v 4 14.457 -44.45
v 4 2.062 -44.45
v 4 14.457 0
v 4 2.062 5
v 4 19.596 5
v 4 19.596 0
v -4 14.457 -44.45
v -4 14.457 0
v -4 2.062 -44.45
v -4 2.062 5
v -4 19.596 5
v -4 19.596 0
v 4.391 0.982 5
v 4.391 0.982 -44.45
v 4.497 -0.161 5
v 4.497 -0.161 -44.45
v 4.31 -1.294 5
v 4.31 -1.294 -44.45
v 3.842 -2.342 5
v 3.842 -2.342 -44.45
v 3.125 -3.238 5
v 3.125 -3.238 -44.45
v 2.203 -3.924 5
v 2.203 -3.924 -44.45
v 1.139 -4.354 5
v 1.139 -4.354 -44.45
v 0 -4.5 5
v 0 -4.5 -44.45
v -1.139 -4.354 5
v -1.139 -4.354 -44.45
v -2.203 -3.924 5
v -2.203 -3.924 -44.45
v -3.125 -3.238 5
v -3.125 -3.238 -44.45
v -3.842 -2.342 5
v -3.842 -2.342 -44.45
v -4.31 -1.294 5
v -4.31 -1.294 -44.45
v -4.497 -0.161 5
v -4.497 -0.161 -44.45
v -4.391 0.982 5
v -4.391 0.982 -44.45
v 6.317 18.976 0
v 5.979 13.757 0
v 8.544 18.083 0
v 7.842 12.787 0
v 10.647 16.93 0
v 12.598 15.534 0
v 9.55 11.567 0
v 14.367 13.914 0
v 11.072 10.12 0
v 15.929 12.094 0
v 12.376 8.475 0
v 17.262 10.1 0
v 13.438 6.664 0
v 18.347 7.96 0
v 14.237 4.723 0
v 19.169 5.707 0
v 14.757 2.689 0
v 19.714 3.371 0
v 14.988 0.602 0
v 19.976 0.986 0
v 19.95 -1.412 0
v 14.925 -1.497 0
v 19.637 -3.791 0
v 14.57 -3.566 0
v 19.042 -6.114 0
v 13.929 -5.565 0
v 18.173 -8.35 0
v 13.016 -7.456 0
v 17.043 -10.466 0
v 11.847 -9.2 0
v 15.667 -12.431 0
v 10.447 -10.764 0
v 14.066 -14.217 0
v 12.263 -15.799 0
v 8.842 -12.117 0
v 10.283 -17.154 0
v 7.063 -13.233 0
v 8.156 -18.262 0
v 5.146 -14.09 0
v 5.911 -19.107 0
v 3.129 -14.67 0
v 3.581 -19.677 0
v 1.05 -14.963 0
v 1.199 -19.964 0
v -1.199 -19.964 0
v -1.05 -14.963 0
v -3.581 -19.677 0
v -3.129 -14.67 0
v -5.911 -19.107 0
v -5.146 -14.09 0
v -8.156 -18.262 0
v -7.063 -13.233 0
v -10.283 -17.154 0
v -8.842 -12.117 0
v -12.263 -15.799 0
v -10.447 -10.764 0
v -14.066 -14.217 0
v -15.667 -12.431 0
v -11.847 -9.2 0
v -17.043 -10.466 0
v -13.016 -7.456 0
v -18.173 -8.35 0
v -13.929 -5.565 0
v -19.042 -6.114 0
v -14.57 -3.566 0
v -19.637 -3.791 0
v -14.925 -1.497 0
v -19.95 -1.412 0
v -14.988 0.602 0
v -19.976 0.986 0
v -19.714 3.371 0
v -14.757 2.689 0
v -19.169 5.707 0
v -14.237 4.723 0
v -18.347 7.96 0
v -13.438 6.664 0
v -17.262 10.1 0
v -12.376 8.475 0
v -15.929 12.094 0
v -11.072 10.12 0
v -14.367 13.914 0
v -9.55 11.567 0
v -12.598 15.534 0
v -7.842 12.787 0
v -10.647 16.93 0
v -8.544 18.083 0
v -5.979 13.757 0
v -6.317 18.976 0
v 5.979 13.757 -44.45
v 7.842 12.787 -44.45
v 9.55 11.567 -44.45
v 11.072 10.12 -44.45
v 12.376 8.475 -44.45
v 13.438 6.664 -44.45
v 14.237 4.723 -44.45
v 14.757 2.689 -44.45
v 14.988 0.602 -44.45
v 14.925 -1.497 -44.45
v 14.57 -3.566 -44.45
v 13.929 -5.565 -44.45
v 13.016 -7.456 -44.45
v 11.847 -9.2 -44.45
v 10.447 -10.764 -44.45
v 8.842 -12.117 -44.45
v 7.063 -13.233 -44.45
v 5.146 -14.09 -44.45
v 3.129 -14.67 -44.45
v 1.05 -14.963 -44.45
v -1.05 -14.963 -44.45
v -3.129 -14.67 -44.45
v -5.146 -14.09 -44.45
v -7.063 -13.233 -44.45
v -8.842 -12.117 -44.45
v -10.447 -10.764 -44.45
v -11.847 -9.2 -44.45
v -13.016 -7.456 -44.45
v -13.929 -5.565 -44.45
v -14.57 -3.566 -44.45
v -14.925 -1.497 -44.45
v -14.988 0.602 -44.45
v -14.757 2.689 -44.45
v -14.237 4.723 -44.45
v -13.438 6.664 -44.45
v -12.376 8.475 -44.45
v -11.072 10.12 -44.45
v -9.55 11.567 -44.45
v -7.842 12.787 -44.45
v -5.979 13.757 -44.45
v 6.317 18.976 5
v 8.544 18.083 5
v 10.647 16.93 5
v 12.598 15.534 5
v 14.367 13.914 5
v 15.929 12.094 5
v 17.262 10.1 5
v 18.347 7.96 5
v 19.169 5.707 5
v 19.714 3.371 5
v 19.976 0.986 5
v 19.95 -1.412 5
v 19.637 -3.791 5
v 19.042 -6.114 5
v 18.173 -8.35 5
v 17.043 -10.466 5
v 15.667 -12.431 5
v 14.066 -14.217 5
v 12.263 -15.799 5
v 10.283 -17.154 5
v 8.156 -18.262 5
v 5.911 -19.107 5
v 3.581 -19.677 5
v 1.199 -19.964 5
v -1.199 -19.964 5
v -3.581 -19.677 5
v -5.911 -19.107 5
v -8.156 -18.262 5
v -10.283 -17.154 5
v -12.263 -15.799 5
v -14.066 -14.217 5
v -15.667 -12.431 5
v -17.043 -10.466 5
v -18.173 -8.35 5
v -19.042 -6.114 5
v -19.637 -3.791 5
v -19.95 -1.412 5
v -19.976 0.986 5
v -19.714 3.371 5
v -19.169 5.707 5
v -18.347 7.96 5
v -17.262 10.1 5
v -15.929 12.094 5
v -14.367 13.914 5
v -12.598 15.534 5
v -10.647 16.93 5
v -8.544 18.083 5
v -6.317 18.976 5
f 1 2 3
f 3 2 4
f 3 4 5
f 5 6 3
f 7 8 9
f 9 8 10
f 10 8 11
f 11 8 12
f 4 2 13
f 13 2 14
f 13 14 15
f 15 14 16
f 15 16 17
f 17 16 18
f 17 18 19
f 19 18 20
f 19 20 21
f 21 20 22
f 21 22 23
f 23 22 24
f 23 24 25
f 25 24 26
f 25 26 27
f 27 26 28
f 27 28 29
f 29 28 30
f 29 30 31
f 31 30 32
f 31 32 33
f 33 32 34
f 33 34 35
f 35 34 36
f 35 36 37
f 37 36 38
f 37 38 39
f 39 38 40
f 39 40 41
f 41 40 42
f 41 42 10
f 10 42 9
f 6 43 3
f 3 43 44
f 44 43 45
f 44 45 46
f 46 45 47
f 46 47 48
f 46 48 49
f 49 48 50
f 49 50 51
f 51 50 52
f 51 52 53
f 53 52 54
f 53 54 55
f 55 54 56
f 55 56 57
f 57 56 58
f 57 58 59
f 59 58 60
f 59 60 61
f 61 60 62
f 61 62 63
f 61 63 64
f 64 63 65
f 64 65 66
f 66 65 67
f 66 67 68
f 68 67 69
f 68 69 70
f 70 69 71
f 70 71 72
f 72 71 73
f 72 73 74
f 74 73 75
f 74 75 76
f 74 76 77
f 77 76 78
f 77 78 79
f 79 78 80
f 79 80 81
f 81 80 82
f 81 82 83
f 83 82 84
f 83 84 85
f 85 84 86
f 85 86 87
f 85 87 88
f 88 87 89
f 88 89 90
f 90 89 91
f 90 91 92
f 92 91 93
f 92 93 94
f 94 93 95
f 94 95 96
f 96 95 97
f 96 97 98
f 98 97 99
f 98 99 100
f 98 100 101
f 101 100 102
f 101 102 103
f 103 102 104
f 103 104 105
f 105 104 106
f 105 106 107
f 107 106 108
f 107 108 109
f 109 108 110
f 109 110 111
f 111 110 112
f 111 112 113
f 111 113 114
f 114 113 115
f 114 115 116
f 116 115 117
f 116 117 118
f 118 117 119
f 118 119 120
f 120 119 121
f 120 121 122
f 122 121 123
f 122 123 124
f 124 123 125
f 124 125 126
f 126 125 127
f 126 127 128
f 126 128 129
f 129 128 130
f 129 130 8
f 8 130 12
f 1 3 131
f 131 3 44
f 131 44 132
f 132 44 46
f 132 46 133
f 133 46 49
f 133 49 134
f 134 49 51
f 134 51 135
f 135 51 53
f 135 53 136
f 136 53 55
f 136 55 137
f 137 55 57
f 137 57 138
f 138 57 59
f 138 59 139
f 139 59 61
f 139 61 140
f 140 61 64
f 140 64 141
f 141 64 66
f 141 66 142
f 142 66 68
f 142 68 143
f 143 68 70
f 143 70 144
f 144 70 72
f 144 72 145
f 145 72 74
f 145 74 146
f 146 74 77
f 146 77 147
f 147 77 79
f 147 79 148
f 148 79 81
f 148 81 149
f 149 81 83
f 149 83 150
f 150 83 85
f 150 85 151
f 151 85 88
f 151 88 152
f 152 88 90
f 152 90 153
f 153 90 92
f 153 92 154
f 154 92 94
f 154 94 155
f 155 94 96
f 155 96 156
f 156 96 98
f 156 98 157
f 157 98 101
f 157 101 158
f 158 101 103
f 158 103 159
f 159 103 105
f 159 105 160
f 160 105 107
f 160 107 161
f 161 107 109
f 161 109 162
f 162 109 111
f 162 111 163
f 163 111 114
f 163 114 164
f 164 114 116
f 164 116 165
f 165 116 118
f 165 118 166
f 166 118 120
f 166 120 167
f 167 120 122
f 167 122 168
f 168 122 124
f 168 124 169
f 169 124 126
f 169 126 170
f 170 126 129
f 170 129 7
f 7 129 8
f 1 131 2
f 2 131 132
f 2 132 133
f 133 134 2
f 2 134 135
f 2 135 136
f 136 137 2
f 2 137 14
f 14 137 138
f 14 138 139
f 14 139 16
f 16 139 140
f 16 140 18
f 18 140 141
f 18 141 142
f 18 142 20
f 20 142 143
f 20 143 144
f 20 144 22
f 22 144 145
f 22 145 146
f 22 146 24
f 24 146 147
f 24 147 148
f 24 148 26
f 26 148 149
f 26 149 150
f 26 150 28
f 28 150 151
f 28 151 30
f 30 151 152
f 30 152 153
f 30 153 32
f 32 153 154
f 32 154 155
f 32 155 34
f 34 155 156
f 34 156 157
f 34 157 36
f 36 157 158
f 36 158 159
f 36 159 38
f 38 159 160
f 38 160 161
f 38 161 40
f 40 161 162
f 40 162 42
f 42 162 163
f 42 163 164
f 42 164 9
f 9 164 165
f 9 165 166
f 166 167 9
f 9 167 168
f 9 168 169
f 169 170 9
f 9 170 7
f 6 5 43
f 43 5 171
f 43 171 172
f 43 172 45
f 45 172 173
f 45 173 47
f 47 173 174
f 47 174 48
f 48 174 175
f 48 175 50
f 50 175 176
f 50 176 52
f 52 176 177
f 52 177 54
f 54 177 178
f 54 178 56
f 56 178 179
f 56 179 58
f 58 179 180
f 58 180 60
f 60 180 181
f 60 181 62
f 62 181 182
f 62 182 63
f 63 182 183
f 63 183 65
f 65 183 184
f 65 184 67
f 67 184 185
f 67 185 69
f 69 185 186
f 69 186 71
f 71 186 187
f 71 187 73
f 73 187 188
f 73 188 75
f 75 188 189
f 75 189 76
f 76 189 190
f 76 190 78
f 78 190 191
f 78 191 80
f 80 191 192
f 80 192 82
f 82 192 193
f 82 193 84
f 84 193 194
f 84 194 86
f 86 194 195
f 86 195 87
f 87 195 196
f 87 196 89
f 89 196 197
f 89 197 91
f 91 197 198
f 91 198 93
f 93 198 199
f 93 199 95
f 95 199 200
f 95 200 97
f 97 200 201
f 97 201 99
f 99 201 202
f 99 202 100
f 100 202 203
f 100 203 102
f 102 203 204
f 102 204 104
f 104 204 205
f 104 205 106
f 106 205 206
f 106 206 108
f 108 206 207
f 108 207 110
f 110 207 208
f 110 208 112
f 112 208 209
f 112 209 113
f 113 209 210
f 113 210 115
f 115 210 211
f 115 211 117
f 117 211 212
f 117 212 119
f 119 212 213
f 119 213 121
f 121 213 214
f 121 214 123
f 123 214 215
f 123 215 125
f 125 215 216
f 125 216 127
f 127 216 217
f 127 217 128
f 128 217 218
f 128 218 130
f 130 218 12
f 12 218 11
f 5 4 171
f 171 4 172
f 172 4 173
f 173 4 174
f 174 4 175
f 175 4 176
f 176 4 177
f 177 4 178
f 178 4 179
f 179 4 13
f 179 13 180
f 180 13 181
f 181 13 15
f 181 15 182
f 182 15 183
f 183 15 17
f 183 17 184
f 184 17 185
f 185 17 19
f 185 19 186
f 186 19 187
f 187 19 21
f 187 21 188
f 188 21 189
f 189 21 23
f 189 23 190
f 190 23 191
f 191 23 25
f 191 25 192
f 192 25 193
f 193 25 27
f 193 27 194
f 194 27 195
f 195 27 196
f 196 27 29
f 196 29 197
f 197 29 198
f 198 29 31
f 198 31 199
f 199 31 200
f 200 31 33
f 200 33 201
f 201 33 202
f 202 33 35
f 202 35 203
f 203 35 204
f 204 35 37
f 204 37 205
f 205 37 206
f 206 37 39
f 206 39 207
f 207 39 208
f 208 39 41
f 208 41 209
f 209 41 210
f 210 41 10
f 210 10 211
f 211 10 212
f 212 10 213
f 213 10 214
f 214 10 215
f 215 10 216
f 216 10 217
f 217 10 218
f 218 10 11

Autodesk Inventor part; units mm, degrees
ref_plane "YZ Plane" through (0, 0, 0) normal (1, 0, 0) x (0, 1, 0)
ref_plane "XZ Plane" through (0, 0, 0) normal (0, 1, 0) x (-1, 0, 0)
ref_plane "XY Plane" through (0, 0, 0) normal (0, 0, 1) x (1, 0, 0)
sketch "Sketch1" plane through (0, 0, 0) normal (0, 0, 1) x (1, 0, 0)
  circle A0 centre (0, 0) radius 20
  dimension "d0" = 40
extrude "Extrusion1" add sketch "Sketch1" along normal blind 5
sketch "Sketch2" plane through (0, 0, 0) normal (0, 0, -1) x (-1, 0, 0)
  circle A0 centre (0, 0) radius 15
  dimension "d3" = 30
extrude "Extrusion2" add sketch "Sketch2" along normal blind 44.45
sketch "Sketch3" plane through (0, 0, 5) normal (0, 0, 1) x (1, 0, 0)
  circle A0 centre (0, 0) radius 4.5
  dimension "d6" = 9
extrude "Extrusion3" cut sketch "Sketch3" against normal through all
sketch "Sketch4" plane through (0, 0, 5) normal (0, 0, 1) x (1, 0, 0)
  circle A0 centre (0, 0) radius 4.5 projected
  line L0 (-4, 2.0616) -> (-4, 19.5959)
  circle A1 centre (0, 0) radius 20 projected
  line L1 (4, 2.0616) -> (4, 19.5959)
  line L2 (0, -28) -> (0, 28) projected
  arc A2 (4, 2.0616) -> (-4, 2.0616) centre (0, 0) ccw
  arc A3 (0, -20) -> (-4, 19.5959) centre (0, 0) ccw
  dimension "d11" = 4
extrude "Extrusion4" cut sketch "Sketch4" against normal through all contours A0 L2 A1 L1 | A0 L0 A1 L2 picked at (1.3394, 14.7583) picked at (-1.3394, 14.7583)
properties part number "wallPlug"
